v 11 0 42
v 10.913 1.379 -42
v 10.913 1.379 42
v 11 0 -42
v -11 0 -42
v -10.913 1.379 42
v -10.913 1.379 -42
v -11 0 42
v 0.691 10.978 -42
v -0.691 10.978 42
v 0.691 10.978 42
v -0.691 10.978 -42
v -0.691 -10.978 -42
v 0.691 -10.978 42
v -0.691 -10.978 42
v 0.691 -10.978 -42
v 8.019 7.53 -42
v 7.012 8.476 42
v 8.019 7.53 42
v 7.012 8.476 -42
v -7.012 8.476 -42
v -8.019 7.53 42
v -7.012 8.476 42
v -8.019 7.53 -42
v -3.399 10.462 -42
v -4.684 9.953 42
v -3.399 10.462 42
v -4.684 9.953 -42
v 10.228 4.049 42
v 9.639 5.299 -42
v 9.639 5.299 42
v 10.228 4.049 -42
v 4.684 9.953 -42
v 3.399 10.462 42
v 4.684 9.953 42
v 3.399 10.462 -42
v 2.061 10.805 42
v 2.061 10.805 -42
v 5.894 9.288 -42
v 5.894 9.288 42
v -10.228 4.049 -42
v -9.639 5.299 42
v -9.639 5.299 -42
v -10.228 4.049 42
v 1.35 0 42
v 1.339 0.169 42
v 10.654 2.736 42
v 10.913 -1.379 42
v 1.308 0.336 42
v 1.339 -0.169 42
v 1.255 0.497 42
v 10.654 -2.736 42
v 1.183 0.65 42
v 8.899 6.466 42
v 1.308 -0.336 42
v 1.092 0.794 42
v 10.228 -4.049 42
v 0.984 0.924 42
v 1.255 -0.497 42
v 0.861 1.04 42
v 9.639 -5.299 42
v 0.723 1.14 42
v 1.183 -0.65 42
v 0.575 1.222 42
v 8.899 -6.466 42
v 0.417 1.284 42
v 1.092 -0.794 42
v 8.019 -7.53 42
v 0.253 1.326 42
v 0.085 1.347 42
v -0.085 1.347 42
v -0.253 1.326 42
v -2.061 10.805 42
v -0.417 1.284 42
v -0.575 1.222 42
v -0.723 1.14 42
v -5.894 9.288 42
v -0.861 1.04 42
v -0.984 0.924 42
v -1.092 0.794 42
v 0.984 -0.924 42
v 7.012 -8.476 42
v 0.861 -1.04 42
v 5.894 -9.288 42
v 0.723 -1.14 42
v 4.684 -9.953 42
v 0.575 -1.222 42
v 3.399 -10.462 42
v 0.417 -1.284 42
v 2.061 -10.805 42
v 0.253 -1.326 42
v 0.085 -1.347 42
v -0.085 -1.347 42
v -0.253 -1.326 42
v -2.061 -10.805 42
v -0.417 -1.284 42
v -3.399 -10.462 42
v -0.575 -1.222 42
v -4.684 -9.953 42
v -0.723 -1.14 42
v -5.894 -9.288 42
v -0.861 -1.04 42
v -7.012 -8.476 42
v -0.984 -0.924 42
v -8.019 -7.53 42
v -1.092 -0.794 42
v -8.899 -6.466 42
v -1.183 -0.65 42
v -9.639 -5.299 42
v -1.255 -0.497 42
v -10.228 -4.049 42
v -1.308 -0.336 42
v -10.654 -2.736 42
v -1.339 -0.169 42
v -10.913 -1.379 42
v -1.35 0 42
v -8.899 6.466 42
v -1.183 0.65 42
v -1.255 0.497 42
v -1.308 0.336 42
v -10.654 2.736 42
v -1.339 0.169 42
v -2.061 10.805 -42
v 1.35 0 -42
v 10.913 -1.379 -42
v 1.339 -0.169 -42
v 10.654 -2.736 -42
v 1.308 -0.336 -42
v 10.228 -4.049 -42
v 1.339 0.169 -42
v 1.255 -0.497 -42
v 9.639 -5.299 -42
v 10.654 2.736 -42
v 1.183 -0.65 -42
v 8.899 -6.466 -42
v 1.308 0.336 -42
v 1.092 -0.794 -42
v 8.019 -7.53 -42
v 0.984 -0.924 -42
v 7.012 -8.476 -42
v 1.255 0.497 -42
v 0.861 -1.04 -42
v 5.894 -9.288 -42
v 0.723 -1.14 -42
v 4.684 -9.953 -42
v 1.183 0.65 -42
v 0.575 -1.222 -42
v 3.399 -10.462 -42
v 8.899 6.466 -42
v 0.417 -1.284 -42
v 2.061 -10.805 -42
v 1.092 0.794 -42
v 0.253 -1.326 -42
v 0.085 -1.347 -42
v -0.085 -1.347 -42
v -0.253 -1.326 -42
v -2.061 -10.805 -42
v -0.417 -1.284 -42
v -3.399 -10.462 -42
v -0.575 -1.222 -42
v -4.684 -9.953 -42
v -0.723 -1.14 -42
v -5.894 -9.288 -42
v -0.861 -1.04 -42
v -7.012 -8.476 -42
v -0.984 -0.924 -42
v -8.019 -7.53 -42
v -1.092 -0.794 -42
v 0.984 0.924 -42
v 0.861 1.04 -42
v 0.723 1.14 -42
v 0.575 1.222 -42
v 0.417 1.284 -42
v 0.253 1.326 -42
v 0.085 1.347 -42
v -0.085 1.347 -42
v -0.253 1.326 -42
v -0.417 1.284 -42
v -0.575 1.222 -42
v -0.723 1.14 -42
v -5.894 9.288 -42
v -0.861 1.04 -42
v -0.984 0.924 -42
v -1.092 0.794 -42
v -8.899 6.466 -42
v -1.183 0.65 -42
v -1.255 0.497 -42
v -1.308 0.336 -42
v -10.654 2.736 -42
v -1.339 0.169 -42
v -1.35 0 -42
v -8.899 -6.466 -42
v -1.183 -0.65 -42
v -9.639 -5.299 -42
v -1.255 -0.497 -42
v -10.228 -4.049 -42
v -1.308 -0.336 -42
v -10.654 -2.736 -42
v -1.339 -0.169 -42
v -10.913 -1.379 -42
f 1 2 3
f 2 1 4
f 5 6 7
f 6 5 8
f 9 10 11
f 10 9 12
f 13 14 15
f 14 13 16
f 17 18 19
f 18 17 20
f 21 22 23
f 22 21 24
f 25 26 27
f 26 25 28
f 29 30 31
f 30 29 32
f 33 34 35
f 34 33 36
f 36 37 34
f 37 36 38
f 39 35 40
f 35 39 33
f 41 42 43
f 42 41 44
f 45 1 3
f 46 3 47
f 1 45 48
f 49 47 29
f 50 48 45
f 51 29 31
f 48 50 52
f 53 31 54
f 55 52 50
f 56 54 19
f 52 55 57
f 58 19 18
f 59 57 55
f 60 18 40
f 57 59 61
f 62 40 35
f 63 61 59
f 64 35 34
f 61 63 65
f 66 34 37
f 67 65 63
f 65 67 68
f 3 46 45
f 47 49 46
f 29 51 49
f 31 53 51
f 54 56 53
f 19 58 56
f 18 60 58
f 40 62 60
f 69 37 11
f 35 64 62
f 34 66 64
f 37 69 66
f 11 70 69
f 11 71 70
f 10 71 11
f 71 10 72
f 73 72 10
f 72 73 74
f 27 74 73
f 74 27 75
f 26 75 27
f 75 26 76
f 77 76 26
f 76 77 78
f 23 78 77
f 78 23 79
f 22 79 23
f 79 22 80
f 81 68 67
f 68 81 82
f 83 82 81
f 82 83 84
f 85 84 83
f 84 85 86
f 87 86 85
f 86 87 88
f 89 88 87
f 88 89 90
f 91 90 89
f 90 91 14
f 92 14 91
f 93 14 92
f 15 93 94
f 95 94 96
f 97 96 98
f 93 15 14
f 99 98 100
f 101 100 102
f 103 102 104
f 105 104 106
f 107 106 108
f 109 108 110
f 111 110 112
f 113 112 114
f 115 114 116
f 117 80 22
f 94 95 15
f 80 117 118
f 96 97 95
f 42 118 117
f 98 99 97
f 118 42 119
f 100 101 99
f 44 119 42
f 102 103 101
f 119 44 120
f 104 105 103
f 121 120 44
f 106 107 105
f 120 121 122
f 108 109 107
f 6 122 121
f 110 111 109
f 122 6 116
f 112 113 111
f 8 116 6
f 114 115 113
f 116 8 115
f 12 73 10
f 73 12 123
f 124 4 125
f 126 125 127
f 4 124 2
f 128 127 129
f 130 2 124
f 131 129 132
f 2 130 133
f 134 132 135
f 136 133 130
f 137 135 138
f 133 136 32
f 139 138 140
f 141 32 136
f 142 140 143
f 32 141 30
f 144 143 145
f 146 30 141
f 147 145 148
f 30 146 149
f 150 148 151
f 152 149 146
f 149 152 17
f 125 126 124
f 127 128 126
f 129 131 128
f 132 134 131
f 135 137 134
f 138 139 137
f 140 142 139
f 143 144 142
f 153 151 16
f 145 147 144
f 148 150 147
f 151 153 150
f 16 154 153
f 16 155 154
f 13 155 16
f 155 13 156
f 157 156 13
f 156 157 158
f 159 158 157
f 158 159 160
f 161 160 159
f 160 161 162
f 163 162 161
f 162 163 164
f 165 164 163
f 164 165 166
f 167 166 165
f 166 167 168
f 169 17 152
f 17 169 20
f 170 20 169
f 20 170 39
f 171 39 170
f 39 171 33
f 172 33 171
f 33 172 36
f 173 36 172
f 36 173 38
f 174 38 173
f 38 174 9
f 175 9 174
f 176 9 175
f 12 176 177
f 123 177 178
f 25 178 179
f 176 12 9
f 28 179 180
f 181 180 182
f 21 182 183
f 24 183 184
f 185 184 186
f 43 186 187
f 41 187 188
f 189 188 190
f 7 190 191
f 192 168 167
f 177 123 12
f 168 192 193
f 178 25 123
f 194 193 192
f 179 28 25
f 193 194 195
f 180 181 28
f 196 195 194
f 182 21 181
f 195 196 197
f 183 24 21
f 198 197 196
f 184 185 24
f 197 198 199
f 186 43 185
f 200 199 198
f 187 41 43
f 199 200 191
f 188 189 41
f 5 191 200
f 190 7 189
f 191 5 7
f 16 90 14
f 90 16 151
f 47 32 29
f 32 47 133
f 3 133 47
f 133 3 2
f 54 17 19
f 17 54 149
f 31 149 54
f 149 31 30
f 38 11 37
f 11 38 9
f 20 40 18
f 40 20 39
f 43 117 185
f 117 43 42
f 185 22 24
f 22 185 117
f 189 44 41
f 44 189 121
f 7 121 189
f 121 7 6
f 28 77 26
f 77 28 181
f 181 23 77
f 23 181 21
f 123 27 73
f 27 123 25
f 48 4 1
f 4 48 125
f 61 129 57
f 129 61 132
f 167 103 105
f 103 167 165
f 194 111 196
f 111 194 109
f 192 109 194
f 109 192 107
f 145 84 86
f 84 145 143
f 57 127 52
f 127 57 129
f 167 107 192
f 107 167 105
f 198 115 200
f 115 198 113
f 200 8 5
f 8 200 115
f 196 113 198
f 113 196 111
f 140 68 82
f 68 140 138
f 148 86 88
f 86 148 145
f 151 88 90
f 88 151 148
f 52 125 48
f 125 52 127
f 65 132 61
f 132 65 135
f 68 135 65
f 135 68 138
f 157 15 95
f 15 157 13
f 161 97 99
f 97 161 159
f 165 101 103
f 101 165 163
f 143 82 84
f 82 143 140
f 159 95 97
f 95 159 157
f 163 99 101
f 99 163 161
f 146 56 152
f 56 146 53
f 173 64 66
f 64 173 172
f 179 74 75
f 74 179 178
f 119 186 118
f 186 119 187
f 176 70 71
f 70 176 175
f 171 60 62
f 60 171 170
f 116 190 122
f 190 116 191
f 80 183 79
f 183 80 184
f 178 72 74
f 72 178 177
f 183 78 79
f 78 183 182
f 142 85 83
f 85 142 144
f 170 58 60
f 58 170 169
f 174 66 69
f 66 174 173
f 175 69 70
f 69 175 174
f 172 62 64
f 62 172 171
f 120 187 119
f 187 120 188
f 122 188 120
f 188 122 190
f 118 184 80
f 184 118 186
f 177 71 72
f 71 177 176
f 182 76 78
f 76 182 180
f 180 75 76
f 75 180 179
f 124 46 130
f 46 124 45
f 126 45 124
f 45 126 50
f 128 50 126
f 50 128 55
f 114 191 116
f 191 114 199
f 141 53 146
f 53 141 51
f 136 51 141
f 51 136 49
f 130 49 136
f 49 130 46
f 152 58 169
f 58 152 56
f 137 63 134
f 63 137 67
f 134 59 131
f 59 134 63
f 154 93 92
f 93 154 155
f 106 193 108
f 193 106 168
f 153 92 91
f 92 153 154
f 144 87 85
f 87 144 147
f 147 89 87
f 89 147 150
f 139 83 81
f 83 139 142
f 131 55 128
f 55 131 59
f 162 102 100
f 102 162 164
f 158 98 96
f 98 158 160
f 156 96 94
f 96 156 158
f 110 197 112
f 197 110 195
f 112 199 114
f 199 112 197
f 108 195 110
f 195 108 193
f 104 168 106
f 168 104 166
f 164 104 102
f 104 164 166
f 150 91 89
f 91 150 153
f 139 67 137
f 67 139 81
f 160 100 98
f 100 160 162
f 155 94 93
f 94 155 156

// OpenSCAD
$fn = 50;


difference() {
	union() {
		translate(v = [0, 0, -42.0000000000]) {
			cylinder(h = 84, r = 11.0000000000);
		}
	}
	union() {
		translate(v = [0, 0, -100.0000000000]) {
			cylinder(h = 200, r = 1.3500000000);
		}
	}
}
